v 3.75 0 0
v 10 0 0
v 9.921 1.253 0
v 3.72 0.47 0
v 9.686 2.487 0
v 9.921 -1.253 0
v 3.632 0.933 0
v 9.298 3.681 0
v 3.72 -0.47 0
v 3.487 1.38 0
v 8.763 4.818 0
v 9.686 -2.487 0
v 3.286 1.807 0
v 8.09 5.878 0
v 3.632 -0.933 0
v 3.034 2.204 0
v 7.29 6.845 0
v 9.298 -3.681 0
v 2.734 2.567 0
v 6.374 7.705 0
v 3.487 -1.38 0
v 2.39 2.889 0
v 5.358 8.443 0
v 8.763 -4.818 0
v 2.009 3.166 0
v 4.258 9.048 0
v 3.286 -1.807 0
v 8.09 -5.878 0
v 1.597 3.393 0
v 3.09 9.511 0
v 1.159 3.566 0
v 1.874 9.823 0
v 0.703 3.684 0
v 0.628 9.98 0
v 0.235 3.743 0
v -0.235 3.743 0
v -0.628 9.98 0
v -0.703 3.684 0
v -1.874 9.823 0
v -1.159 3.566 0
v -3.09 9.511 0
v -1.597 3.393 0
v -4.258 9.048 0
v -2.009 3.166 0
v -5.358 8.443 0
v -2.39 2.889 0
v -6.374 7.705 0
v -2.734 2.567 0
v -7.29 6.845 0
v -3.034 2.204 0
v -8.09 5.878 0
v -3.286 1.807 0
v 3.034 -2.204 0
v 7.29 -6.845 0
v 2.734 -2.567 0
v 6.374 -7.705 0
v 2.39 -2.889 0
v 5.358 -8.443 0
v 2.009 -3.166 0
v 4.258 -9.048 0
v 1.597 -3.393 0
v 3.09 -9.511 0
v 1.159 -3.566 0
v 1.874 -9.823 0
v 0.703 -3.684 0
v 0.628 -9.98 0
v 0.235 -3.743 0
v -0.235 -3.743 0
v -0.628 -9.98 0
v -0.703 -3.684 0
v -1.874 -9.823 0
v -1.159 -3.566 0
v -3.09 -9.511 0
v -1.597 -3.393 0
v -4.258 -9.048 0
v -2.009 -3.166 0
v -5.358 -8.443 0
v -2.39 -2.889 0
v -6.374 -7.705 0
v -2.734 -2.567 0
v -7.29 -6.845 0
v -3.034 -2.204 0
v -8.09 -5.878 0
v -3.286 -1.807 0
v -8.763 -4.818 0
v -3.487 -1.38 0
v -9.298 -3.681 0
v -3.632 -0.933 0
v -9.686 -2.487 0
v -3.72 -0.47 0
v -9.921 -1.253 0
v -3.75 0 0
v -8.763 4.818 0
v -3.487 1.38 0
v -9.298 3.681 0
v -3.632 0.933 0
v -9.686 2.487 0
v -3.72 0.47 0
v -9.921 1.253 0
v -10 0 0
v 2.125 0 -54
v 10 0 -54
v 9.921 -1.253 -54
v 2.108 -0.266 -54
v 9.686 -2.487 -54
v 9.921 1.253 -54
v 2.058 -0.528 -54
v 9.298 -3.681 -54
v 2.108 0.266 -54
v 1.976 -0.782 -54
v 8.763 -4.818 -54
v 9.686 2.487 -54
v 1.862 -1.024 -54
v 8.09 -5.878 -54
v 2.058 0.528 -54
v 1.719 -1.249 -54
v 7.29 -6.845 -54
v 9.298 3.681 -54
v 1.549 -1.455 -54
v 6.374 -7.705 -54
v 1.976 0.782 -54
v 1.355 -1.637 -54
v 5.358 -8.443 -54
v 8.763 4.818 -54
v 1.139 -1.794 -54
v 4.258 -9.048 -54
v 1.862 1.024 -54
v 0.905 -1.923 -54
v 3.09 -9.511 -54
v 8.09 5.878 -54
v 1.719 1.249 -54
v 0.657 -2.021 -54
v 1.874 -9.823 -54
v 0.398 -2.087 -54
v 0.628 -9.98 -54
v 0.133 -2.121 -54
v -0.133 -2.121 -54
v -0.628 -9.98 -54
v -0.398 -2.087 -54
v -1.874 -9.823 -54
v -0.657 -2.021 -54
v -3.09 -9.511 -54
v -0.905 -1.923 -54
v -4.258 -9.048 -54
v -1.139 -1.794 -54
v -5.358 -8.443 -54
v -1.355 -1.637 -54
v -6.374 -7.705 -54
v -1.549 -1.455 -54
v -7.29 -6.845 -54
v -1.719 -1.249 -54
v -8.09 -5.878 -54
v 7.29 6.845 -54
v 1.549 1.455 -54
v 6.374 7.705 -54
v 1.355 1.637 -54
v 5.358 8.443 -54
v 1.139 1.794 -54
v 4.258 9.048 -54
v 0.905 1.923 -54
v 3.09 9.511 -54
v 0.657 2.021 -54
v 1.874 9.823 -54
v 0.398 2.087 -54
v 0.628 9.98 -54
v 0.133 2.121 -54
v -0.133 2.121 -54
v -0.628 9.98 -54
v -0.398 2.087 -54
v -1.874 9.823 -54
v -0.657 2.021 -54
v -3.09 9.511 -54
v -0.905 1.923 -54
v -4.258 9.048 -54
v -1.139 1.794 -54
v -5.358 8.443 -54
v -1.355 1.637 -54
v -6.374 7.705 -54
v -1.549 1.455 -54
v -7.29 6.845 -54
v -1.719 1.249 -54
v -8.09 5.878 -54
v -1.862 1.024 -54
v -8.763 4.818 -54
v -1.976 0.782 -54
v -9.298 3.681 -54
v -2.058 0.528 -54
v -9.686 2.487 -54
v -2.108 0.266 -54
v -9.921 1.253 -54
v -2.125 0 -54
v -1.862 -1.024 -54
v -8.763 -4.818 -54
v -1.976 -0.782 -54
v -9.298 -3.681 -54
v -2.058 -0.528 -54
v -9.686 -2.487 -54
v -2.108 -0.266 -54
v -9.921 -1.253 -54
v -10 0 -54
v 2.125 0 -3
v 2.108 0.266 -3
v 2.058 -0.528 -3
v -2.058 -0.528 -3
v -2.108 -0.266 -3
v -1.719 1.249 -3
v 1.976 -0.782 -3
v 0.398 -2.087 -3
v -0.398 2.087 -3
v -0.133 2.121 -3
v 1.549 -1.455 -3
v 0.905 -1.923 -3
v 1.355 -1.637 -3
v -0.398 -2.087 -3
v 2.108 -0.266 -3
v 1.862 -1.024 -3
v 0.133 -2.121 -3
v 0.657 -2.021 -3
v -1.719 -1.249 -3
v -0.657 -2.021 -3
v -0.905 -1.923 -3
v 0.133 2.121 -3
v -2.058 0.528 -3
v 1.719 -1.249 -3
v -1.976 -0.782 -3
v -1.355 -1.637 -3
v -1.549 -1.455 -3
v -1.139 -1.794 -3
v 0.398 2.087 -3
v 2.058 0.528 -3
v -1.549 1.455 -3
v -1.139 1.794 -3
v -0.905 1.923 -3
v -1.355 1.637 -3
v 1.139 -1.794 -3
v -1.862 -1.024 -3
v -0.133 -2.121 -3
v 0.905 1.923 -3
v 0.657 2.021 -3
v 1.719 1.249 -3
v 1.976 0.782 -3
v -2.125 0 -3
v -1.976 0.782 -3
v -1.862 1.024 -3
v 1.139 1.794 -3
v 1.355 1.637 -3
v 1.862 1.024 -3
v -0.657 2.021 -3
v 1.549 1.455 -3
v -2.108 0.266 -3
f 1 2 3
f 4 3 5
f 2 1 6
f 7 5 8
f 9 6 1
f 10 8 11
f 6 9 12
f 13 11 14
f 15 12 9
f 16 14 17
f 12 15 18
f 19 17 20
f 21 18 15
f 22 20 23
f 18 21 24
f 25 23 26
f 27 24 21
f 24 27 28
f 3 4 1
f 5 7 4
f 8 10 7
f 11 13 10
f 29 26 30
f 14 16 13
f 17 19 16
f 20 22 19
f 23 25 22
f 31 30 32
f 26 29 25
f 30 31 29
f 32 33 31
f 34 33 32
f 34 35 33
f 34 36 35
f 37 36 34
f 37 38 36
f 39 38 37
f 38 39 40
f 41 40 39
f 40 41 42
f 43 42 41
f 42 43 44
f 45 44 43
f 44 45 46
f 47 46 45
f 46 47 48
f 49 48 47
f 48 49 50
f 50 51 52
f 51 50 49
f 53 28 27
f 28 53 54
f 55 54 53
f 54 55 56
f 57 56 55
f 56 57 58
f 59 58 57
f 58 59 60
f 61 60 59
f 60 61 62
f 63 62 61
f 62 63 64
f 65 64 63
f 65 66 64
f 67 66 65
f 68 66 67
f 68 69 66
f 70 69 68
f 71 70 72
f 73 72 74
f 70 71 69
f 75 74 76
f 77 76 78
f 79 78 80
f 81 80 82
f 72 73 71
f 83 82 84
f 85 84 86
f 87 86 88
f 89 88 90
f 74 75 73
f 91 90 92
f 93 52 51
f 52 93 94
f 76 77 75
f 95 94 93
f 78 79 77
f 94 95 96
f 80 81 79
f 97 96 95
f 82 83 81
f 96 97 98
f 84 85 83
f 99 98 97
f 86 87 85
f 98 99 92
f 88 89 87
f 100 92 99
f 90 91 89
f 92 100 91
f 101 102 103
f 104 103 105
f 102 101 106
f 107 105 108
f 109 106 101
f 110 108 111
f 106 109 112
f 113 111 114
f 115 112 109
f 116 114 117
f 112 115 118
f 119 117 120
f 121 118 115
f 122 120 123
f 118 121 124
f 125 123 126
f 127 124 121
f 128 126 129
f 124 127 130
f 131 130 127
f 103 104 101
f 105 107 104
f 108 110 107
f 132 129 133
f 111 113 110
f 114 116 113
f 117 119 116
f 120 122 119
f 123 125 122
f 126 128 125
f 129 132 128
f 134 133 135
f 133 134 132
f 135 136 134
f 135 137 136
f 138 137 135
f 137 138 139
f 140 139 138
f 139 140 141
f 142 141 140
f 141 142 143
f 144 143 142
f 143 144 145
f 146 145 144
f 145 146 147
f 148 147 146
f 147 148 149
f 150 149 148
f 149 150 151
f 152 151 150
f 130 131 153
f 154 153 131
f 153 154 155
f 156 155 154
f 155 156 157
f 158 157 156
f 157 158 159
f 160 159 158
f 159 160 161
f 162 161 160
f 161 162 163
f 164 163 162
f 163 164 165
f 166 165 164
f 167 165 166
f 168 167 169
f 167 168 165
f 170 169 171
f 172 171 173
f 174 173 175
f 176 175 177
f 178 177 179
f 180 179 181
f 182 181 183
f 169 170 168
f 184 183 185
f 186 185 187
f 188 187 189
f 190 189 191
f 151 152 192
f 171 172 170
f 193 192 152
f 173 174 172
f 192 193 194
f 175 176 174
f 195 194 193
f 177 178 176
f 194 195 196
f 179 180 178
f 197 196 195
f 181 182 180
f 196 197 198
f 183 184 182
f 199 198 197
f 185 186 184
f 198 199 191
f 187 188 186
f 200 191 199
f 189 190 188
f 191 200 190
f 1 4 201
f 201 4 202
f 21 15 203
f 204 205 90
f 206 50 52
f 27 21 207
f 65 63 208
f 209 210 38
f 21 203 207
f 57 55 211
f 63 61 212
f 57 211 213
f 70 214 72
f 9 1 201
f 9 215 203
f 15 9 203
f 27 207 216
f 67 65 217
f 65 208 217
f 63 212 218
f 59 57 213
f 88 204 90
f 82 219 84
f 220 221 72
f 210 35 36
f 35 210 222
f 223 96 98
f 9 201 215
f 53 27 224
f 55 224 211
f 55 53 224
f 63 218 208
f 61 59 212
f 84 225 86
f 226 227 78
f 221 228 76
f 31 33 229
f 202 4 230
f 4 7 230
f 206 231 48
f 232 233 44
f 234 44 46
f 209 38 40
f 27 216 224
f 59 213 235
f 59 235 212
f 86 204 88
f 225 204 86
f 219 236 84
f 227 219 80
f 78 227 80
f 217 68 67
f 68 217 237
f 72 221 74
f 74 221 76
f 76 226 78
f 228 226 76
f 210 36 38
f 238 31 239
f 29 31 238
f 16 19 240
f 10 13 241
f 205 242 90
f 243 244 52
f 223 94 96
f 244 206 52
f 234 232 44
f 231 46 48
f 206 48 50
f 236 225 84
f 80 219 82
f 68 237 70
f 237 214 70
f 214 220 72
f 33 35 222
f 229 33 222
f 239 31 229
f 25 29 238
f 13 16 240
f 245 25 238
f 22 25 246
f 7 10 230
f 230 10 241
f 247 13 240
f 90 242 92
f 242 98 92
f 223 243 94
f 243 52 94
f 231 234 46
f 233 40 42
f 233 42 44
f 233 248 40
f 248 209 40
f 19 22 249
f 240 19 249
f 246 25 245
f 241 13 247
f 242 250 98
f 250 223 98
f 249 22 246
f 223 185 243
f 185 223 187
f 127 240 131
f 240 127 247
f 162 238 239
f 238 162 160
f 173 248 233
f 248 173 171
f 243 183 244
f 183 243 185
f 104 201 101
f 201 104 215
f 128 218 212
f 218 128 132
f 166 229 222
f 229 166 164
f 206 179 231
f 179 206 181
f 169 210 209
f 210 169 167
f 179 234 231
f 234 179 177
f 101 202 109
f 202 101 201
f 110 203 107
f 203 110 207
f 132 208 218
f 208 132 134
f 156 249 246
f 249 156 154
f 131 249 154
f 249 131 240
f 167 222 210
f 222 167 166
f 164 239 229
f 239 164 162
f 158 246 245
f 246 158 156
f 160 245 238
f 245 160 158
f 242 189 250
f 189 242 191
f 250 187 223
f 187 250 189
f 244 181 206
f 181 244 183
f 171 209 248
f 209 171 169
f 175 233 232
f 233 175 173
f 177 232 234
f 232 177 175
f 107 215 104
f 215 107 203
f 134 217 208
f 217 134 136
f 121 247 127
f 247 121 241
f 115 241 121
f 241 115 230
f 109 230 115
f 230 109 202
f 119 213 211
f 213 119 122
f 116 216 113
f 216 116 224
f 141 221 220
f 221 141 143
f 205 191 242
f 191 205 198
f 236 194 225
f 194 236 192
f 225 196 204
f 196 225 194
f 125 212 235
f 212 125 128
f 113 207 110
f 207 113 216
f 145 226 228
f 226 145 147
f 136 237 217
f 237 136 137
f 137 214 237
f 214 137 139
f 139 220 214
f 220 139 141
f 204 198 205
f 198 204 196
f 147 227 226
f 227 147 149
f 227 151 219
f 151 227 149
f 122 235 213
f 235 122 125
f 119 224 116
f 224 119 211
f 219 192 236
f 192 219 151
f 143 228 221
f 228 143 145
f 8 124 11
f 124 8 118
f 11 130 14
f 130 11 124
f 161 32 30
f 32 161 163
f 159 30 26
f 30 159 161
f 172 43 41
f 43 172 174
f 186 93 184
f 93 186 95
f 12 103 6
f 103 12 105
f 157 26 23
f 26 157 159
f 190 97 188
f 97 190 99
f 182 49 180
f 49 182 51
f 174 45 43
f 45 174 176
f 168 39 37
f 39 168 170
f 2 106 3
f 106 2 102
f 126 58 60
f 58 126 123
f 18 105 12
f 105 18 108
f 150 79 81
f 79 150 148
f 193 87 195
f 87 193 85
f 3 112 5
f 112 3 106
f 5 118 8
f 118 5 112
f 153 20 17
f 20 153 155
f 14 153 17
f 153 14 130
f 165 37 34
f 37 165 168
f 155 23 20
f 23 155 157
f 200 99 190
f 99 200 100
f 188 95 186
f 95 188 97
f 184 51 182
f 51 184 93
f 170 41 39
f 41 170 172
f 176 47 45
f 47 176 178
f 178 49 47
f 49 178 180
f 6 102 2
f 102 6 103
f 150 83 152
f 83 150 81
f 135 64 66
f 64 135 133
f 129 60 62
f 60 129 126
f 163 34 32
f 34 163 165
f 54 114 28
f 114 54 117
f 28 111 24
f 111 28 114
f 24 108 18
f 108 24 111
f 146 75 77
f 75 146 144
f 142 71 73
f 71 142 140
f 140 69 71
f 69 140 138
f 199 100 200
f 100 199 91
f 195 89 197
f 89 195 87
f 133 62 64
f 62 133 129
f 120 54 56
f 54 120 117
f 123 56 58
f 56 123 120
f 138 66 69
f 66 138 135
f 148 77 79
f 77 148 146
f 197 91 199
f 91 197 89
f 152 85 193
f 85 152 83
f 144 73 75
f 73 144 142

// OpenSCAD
$fn = 50;


difference() {
	union() {
		translate(v = [0, 0, -54.0000000000]) {
			cylinder(h = 54, r = 10.0000000000);
		}
		cylinder(h = 0, r = 20.0000000000);
	}
	union() {
		translate(v = [0, 0, 0]) {
			rotate(a = [0, 0, 0]) {
				difference() {
					union() {
						#translate(v = [0, 0, -54.0000000000]) {
							cylinder(h = 54, r = 2.0000000000);
						}
						#translate(v = [0, 0, -3]) {
							cylinder(h = 3, r = 10.0000000000, r1 = 2.1250000000, r2 = 3.7500000000);
						}
						#translate(v = [0, 0, -54.0000000000]) {
							cylinder(h = 54, r = 2.1250000000);
						}
						#translate(v = [0, 0, -54.0000000000]) {
							cylinder(h = 54, r = 2.0000000000);
						}
					}
					union();
				}
			}
		}
	}
}
